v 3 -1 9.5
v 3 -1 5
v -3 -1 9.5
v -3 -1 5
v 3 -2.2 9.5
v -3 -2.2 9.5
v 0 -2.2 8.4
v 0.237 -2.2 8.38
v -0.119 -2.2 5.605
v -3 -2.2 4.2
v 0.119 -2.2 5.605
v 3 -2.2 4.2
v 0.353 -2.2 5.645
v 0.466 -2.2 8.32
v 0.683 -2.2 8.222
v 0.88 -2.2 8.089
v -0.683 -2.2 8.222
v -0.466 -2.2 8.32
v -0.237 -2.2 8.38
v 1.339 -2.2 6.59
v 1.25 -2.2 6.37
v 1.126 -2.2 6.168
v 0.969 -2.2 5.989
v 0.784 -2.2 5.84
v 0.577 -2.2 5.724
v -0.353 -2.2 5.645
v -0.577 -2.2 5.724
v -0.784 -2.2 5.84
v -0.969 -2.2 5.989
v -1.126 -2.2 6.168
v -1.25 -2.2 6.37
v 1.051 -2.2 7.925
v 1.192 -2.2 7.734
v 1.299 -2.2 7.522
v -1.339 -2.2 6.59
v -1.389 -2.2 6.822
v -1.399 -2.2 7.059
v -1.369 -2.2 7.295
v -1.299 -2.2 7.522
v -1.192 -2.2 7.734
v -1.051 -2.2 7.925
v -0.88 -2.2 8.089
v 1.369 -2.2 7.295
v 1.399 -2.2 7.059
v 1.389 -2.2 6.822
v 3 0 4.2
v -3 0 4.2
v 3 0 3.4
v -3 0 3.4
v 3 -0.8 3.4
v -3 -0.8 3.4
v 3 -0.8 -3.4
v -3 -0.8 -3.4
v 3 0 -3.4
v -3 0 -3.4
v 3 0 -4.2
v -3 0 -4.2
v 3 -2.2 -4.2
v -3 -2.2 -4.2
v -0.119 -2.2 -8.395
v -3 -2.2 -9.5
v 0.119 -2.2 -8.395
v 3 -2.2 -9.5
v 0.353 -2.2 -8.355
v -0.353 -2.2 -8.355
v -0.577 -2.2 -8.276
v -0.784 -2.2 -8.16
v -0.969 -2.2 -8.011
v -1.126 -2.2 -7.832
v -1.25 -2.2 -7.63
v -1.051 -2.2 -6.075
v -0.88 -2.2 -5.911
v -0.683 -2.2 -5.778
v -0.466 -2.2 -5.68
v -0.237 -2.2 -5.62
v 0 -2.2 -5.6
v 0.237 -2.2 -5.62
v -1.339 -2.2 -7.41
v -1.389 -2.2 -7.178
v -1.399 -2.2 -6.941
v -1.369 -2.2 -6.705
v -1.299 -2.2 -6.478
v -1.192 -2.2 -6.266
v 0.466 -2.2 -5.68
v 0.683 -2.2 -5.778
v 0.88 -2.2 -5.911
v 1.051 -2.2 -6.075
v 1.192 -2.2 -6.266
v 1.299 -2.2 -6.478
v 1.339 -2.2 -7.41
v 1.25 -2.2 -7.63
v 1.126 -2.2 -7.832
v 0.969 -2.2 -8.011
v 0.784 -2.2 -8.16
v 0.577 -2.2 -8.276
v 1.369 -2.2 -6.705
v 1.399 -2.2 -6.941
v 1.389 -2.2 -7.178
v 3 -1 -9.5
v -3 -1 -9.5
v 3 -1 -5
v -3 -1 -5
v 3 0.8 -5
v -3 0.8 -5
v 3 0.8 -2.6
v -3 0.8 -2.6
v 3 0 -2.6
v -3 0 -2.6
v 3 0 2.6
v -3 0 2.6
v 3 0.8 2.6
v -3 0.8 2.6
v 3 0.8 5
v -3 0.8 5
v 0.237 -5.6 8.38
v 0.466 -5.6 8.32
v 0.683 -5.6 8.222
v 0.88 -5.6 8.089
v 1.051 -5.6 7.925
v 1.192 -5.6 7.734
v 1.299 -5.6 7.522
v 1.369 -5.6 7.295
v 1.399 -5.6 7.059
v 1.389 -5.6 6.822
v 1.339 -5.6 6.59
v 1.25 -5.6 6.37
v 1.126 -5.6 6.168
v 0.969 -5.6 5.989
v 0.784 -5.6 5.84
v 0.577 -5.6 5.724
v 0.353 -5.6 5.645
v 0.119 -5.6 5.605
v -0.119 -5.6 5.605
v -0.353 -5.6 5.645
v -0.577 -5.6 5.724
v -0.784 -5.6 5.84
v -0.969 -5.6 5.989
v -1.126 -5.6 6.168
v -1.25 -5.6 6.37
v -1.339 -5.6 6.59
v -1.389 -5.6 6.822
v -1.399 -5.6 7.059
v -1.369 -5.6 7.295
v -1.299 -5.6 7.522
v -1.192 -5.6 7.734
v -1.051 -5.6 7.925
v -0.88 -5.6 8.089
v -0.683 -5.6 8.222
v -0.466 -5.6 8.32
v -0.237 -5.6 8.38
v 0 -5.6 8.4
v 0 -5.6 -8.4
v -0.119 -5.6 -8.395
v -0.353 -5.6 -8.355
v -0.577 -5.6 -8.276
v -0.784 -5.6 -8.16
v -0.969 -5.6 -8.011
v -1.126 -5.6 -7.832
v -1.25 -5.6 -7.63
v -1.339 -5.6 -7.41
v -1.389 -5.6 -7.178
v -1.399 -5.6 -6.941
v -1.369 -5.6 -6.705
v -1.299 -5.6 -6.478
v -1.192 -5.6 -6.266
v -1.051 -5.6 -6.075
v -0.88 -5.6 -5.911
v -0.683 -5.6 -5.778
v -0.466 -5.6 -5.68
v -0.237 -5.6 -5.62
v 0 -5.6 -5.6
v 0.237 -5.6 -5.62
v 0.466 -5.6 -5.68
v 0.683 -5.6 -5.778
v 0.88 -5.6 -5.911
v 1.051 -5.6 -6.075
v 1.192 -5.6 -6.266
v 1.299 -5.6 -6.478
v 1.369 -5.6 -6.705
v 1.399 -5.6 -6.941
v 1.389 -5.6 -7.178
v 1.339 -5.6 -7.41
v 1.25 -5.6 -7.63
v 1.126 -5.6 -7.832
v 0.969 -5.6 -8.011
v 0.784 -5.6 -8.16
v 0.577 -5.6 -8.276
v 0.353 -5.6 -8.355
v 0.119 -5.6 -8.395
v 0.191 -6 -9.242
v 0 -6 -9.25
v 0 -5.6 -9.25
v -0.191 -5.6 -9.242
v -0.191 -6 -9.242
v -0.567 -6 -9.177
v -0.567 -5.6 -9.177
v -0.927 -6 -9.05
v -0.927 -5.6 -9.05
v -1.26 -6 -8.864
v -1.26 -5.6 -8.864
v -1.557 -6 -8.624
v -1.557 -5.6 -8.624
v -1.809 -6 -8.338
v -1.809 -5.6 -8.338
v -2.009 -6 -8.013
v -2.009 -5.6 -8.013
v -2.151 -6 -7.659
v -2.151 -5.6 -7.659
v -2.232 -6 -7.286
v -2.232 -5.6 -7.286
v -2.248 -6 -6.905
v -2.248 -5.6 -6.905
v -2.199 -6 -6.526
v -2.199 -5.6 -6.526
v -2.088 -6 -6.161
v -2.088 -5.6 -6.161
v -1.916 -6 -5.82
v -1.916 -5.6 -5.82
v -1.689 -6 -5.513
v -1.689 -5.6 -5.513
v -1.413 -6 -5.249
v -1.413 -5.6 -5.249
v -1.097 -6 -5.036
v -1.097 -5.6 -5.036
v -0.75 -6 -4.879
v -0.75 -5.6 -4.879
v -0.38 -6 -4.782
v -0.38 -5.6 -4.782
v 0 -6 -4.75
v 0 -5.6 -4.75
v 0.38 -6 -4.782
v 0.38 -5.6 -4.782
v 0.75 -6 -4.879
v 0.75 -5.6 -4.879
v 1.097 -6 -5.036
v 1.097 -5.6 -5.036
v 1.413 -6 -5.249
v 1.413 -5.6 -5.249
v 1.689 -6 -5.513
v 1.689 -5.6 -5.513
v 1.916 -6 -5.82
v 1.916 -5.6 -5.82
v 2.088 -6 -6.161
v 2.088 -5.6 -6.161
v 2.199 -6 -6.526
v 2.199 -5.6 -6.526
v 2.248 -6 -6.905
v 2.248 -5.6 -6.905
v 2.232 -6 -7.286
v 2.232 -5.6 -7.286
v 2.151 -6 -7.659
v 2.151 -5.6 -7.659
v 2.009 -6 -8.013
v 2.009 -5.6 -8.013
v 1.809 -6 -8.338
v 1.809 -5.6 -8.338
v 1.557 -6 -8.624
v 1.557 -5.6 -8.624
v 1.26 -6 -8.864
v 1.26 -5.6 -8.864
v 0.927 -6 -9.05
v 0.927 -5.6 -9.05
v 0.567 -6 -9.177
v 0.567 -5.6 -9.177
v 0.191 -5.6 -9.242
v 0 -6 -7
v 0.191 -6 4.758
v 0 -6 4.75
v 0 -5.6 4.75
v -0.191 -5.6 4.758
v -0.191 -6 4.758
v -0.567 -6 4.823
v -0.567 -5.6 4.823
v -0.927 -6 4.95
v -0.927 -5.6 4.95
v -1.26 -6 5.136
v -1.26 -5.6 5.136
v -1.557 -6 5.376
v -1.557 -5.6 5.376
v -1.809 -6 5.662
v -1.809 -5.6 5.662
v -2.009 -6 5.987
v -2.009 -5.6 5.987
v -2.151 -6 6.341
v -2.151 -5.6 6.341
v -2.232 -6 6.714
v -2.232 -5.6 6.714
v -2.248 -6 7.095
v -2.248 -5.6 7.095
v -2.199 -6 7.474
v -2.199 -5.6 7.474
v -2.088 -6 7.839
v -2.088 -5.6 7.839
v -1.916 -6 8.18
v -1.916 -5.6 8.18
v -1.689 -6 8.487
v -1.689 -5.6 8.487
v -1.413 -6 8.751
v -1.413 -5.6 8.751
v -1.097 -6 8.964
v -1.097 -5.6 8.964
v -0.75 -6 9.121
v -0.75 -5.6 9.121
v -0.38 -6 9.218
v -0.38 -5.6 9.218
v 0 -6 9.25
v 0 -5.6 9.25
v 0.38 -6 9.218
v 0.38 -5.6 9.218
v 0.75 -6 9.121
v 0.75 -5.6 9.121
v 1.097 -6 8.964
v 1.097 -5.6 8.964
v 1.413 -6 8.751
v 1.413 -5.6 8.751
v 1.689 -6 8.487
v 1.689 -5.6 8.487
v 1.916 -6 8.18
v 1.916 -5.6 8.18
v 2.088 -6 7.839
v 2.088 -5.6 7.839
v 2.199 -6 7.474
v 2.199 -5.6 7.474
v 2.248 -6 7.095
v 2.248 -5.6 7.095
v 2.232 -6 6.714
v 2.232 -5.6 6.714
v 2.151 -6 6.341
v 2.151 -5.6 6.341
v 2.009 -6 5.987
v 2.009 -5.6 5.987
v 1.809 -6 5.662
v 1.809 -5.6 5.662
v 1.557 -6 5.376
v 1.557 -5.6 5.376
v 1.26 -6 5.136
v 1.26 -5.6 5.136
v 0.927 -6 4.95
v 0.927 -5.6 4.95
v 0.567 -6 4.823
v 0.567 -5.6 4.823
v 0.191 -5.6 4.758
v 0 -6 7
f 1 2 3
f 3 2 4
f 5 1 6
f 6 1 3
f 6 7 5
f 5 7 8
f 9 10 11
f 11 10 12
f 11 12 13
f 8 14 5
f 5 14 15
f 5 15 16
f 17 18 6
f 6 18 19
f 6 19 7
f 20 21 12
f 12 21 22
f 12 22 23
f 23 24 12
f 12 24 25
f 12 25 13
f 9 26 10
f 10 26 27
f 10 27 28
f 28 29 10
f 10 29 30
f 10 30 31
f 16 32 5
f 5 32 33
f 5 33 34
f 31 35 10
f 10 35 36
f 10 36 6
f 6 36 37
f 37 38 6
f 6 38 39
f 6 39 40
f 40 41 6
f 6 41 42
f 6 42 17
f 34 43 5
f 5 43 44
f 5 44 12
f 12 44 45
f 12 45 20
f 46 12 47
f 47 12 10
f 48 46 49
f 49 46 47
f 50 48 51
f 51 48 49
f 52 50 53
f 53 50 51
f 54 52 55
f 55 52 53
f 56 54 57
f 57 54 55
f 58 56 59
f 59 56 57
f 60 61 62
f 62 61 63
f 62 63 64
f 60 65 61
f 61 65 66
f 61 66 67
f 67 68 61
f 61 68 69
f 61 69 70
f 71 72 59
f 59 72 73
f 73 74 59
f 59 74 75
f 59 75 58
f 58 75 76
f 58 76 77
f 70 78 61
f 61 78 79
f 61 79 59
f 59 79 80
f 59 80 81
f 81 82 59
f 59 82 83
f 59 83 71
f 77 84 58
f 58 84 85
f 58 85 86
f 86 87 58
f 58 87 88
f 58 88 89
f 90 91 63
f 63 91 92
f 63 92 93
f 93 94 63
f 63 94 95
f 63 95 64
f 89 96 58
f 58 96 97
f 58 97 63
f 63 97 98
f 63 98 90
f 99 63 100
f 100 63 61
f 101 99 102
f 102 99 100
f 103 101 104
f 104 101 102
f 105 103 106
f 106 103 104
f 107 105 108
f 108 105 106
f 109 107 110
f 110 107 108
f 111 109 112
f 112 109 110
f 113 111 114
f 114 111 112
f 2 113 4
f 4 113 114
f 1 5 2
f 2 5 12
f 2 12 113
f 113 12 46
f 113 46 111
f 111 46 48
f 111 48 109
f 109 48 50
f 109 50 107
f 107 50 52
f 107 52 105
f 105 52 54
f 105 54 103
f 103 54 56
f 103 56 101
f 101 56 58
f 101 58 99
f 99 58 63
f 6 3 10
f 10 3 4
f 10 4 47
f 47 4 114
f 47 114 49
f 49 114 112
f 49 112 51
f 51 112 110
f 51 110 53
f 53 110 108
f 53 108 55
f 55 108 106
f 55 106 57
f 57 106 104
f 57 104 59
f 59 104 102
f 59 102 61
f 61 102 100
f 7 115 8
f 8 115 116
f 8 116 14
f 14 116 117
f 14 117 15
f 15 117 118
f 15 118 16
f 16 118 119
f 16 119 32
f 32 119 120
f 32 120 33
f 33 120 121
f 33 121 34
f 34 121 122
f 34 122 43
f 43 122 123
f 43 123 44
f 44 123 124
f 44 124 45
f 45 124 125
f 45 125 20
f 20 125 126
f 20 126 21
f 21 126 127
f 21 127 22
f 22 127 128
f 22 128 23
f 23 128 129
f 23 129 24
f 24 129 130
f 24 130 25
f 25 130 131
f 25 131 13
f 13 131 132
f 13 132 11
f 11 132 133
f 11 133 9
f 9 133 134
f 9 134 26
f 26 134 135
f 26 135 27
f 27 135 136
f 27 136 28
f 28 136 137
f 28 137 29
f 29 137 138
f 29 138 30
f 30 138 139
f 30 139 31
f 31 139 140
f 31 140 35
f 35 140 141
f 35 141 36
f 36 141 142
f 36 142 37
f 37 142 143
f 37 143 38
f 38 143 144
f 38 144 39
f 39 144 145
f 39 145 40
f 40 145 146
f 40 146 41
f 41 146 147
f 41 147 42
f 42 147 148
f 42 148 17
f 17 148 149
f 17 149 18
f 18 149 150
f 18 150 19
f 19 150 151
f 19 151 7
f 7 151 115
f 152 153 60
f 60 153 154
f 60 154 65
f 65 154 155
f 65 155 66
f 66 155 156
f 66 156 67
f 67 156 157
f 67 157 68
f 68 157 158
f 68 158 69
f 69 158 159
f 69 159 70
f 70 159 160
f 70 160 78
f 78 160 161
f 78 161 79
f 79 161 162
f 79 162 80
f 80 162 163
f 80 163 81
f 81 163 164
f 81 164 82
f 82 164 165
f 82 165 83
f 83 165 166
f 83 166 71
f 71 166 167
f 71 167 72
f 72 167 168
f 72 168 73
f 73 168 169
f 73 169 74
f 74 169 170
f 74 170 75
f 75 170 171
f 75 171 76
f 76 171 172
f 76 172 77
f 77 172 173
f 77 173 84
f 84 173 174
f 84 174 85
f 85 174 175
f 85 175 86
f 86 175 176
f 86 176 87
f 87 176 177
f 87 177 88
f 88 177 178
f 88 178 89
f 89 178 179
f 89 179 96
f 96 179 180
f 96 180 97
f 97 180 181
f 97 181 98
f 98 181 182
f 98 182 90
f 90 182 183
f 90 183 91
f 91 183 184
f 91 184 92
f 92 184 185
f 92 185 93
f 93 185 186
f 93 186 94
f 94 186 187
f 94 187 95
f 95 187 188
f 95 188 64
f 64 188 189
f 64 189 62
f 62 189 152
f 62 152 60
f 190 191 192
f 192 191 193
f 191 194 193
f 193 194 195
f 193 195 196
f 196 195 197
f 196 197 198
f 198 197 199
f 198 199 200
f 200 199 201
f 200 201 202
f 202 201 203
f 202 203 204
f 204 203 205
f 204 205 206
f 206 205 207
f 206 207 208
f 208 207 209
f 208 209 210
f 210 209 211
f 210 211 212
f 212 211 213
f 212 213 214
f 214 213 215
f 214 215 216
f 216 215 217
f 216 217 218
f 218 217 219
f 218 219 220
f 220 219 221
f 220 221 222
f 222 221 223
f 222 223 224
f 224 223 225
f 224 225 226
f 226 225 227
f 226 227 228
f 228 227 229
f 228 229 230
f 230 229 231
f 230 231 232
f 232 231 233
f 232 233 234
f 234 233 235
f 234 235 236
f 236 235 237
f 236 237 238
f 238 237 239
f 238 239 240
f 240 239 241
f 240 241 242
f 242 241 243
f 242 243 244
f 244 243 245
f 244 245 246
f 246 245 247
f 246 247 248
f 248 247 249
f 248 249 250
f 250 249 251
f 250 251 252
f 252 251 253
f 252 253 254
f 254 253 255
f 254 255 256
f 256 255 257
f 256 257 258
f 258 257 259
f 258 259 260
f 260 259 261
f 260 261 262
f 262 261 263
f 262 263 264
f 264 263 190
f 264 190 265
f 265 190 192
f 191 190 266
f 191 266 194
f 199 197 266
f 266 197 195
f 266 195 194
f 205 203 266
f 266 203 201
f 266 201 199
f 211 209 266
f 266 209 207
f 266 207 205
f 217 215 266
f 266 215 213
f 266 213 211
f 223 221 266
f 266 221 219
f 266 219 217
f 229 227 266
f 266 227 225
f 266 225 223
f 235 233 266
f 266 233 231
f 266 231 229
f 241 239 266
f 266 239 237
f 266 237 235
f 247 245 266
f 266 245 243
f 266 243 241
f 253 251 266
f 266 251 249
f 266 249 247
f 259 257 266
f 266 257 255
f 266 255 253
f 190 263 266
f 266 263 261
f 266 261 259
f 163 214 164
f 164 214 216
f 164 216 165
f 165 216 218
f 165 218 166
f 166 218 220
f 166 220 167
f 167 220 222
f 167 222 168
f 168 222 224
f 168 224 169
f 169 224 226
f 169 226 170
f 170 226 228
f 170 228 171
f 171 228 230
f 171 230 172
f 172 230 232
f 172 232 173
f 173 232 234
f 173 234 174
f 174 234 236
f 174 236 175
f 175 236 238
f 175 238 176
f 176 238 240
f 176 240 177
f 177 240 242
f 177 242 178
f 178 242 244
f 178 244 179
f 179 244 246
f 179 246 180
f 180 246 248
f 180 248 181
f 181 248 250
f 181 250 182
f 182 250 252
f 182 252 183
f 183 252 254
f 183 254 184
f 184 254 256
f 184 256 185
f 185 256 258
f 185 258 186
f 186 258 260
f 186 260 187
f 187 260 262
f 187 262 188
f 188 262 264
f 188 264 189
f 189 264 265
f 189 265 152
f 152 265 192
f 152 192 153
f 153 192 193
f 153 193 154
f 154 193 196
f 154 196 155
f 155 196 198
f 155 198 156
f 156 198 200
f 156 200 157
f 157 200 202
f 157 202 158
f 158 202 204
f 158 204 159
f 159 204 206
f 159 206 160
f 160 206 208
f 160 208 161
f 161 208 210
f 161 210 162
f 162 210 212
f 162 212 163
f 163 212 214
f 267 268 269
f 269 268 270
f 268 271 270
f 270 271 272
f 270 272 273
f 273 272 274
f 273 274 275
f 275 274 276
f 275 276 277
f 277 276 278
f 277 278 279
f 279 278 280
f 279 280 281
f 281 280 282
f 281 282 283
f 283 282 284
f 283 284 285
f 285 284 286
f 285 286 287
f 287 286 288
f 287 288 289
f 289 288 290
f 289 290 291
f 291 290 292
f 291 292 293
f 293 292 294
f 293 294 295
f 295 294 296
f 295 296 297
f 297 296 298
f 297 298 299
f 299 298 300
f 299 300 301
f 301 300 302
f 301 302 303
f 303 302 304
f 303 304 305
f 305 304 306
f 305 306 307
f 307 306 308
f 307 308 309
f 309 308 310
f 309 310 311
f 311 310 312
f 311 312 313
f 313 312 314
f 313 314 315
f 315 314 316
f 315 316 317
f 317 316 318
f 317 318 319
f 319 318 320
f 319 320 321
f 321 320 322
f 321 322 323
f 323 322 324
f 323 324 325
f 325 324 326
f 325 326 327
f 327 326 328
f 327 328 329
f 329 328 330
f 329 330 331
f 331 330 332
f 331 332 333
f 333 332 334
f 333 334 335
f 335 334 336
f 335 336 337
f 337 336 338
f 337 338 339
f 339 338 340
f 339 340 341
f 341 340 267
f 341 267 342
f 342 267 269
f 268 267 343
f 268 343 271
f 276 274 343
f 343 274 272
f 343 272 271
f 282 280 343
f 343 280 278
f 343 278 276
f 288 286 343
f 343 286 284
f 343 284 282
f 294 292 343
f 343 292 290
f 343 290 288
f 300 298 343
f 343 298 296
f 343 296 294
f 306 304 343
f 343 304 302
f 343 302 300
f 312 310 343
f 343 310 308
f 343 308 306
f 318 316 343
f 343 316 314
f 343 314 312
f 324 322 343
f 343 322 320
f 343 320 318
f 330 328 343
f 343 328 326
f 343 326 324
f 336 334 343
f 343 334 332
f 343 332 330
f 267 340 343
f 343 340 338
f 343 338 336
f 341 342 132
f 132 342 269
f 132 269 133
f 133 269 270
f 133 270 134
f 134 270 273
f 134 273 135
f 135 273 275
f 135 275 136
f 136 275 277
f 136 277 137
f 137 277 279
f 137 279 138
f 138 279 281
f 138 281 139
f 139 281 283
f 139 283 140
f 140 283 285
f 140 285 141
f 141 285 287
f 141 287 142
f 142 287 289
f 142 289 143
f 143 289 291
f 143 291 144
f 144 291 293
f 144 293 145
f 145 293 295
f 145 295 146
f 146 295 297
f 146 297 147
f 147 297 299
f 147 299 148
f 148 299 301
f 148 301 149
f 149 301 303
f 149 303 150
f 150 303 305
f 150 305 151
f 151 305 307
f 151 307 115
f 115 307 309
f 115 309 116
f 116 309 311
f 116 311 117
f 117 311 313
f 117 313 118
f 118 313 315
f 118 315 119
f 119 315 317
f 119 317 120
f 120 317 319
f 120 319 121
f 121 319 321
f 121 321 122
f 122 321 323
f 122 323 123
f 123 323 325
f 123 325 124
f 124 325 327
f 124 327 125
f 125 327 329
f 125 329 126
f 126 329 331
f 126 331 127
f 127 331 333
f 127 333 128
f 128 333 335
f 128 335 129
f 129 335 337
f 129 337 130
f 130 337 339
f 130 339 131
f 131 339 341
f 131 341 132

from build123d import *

# Parameters (mm, degrees)
BOSS_EXTRUDE4_DEPTH = 3
SKETCH5_R           = 1.4
BOSS_EXTRUDE5_DEPTH = 4.6
SKETCH6_R           = 2.25
BOSS_EXTRUDE6_DEPTH = 0.4


with BuildPart() as part:
    # Sketch4 → Boss-Extrude4 (new body, symmetric)
    with BuildSketch(Plane(origin=(0, 0, 0), x_dir=(0, 0, -1), z_dir=(1, 0, 0))):
        Polygon((-5, -1), (-5, 0.8), (-2.6, 0.8), (-2.6, 0), (2.6, 0), (2.6, 0.8), (5, 0.8), (5, -1), (9.5, -1), (9.5, -2.2), (4.2, -2.2), (4.2, 0), (3.4, 0), (3.4, -0.8), (-3.4, -0.8), (-3.4, 0), (-4.2, 0), (-4.2, -2.2), (-9.5, -2.2), (-9.5, -1), align=None)
    extrude(amount=BOSS_EXTRUDE4_DEPTH, both=True)

    # Sketch5 → Boss-Extrude5 (add)
    with BuildSketch(Plane(origin=(0, -1, 0), x_dir=(1, 0, 0), z_dir=(0, 1, 0))):
        with Locations((0, -7)):
            Circle(SKETCH5_R)
        with Locations((0, 7)):
            Circle(SKETCH5_R)
    extrude(amount=-BOSS_EXTRUDE5_DEPTH)

    # Sketch6 → Boss-Extrude6 (add)
    with BuildSketch(Plane.XZ.offset(5.6)):
        with Locations((0, -7)):
            Circle(SKETCH6_R)
        with Locations((0, 7)):
            Circle(SKETCH6_R)
    extrude(amount=BOSS_EXTRUDE6_DEPTH)


solid = part.part
